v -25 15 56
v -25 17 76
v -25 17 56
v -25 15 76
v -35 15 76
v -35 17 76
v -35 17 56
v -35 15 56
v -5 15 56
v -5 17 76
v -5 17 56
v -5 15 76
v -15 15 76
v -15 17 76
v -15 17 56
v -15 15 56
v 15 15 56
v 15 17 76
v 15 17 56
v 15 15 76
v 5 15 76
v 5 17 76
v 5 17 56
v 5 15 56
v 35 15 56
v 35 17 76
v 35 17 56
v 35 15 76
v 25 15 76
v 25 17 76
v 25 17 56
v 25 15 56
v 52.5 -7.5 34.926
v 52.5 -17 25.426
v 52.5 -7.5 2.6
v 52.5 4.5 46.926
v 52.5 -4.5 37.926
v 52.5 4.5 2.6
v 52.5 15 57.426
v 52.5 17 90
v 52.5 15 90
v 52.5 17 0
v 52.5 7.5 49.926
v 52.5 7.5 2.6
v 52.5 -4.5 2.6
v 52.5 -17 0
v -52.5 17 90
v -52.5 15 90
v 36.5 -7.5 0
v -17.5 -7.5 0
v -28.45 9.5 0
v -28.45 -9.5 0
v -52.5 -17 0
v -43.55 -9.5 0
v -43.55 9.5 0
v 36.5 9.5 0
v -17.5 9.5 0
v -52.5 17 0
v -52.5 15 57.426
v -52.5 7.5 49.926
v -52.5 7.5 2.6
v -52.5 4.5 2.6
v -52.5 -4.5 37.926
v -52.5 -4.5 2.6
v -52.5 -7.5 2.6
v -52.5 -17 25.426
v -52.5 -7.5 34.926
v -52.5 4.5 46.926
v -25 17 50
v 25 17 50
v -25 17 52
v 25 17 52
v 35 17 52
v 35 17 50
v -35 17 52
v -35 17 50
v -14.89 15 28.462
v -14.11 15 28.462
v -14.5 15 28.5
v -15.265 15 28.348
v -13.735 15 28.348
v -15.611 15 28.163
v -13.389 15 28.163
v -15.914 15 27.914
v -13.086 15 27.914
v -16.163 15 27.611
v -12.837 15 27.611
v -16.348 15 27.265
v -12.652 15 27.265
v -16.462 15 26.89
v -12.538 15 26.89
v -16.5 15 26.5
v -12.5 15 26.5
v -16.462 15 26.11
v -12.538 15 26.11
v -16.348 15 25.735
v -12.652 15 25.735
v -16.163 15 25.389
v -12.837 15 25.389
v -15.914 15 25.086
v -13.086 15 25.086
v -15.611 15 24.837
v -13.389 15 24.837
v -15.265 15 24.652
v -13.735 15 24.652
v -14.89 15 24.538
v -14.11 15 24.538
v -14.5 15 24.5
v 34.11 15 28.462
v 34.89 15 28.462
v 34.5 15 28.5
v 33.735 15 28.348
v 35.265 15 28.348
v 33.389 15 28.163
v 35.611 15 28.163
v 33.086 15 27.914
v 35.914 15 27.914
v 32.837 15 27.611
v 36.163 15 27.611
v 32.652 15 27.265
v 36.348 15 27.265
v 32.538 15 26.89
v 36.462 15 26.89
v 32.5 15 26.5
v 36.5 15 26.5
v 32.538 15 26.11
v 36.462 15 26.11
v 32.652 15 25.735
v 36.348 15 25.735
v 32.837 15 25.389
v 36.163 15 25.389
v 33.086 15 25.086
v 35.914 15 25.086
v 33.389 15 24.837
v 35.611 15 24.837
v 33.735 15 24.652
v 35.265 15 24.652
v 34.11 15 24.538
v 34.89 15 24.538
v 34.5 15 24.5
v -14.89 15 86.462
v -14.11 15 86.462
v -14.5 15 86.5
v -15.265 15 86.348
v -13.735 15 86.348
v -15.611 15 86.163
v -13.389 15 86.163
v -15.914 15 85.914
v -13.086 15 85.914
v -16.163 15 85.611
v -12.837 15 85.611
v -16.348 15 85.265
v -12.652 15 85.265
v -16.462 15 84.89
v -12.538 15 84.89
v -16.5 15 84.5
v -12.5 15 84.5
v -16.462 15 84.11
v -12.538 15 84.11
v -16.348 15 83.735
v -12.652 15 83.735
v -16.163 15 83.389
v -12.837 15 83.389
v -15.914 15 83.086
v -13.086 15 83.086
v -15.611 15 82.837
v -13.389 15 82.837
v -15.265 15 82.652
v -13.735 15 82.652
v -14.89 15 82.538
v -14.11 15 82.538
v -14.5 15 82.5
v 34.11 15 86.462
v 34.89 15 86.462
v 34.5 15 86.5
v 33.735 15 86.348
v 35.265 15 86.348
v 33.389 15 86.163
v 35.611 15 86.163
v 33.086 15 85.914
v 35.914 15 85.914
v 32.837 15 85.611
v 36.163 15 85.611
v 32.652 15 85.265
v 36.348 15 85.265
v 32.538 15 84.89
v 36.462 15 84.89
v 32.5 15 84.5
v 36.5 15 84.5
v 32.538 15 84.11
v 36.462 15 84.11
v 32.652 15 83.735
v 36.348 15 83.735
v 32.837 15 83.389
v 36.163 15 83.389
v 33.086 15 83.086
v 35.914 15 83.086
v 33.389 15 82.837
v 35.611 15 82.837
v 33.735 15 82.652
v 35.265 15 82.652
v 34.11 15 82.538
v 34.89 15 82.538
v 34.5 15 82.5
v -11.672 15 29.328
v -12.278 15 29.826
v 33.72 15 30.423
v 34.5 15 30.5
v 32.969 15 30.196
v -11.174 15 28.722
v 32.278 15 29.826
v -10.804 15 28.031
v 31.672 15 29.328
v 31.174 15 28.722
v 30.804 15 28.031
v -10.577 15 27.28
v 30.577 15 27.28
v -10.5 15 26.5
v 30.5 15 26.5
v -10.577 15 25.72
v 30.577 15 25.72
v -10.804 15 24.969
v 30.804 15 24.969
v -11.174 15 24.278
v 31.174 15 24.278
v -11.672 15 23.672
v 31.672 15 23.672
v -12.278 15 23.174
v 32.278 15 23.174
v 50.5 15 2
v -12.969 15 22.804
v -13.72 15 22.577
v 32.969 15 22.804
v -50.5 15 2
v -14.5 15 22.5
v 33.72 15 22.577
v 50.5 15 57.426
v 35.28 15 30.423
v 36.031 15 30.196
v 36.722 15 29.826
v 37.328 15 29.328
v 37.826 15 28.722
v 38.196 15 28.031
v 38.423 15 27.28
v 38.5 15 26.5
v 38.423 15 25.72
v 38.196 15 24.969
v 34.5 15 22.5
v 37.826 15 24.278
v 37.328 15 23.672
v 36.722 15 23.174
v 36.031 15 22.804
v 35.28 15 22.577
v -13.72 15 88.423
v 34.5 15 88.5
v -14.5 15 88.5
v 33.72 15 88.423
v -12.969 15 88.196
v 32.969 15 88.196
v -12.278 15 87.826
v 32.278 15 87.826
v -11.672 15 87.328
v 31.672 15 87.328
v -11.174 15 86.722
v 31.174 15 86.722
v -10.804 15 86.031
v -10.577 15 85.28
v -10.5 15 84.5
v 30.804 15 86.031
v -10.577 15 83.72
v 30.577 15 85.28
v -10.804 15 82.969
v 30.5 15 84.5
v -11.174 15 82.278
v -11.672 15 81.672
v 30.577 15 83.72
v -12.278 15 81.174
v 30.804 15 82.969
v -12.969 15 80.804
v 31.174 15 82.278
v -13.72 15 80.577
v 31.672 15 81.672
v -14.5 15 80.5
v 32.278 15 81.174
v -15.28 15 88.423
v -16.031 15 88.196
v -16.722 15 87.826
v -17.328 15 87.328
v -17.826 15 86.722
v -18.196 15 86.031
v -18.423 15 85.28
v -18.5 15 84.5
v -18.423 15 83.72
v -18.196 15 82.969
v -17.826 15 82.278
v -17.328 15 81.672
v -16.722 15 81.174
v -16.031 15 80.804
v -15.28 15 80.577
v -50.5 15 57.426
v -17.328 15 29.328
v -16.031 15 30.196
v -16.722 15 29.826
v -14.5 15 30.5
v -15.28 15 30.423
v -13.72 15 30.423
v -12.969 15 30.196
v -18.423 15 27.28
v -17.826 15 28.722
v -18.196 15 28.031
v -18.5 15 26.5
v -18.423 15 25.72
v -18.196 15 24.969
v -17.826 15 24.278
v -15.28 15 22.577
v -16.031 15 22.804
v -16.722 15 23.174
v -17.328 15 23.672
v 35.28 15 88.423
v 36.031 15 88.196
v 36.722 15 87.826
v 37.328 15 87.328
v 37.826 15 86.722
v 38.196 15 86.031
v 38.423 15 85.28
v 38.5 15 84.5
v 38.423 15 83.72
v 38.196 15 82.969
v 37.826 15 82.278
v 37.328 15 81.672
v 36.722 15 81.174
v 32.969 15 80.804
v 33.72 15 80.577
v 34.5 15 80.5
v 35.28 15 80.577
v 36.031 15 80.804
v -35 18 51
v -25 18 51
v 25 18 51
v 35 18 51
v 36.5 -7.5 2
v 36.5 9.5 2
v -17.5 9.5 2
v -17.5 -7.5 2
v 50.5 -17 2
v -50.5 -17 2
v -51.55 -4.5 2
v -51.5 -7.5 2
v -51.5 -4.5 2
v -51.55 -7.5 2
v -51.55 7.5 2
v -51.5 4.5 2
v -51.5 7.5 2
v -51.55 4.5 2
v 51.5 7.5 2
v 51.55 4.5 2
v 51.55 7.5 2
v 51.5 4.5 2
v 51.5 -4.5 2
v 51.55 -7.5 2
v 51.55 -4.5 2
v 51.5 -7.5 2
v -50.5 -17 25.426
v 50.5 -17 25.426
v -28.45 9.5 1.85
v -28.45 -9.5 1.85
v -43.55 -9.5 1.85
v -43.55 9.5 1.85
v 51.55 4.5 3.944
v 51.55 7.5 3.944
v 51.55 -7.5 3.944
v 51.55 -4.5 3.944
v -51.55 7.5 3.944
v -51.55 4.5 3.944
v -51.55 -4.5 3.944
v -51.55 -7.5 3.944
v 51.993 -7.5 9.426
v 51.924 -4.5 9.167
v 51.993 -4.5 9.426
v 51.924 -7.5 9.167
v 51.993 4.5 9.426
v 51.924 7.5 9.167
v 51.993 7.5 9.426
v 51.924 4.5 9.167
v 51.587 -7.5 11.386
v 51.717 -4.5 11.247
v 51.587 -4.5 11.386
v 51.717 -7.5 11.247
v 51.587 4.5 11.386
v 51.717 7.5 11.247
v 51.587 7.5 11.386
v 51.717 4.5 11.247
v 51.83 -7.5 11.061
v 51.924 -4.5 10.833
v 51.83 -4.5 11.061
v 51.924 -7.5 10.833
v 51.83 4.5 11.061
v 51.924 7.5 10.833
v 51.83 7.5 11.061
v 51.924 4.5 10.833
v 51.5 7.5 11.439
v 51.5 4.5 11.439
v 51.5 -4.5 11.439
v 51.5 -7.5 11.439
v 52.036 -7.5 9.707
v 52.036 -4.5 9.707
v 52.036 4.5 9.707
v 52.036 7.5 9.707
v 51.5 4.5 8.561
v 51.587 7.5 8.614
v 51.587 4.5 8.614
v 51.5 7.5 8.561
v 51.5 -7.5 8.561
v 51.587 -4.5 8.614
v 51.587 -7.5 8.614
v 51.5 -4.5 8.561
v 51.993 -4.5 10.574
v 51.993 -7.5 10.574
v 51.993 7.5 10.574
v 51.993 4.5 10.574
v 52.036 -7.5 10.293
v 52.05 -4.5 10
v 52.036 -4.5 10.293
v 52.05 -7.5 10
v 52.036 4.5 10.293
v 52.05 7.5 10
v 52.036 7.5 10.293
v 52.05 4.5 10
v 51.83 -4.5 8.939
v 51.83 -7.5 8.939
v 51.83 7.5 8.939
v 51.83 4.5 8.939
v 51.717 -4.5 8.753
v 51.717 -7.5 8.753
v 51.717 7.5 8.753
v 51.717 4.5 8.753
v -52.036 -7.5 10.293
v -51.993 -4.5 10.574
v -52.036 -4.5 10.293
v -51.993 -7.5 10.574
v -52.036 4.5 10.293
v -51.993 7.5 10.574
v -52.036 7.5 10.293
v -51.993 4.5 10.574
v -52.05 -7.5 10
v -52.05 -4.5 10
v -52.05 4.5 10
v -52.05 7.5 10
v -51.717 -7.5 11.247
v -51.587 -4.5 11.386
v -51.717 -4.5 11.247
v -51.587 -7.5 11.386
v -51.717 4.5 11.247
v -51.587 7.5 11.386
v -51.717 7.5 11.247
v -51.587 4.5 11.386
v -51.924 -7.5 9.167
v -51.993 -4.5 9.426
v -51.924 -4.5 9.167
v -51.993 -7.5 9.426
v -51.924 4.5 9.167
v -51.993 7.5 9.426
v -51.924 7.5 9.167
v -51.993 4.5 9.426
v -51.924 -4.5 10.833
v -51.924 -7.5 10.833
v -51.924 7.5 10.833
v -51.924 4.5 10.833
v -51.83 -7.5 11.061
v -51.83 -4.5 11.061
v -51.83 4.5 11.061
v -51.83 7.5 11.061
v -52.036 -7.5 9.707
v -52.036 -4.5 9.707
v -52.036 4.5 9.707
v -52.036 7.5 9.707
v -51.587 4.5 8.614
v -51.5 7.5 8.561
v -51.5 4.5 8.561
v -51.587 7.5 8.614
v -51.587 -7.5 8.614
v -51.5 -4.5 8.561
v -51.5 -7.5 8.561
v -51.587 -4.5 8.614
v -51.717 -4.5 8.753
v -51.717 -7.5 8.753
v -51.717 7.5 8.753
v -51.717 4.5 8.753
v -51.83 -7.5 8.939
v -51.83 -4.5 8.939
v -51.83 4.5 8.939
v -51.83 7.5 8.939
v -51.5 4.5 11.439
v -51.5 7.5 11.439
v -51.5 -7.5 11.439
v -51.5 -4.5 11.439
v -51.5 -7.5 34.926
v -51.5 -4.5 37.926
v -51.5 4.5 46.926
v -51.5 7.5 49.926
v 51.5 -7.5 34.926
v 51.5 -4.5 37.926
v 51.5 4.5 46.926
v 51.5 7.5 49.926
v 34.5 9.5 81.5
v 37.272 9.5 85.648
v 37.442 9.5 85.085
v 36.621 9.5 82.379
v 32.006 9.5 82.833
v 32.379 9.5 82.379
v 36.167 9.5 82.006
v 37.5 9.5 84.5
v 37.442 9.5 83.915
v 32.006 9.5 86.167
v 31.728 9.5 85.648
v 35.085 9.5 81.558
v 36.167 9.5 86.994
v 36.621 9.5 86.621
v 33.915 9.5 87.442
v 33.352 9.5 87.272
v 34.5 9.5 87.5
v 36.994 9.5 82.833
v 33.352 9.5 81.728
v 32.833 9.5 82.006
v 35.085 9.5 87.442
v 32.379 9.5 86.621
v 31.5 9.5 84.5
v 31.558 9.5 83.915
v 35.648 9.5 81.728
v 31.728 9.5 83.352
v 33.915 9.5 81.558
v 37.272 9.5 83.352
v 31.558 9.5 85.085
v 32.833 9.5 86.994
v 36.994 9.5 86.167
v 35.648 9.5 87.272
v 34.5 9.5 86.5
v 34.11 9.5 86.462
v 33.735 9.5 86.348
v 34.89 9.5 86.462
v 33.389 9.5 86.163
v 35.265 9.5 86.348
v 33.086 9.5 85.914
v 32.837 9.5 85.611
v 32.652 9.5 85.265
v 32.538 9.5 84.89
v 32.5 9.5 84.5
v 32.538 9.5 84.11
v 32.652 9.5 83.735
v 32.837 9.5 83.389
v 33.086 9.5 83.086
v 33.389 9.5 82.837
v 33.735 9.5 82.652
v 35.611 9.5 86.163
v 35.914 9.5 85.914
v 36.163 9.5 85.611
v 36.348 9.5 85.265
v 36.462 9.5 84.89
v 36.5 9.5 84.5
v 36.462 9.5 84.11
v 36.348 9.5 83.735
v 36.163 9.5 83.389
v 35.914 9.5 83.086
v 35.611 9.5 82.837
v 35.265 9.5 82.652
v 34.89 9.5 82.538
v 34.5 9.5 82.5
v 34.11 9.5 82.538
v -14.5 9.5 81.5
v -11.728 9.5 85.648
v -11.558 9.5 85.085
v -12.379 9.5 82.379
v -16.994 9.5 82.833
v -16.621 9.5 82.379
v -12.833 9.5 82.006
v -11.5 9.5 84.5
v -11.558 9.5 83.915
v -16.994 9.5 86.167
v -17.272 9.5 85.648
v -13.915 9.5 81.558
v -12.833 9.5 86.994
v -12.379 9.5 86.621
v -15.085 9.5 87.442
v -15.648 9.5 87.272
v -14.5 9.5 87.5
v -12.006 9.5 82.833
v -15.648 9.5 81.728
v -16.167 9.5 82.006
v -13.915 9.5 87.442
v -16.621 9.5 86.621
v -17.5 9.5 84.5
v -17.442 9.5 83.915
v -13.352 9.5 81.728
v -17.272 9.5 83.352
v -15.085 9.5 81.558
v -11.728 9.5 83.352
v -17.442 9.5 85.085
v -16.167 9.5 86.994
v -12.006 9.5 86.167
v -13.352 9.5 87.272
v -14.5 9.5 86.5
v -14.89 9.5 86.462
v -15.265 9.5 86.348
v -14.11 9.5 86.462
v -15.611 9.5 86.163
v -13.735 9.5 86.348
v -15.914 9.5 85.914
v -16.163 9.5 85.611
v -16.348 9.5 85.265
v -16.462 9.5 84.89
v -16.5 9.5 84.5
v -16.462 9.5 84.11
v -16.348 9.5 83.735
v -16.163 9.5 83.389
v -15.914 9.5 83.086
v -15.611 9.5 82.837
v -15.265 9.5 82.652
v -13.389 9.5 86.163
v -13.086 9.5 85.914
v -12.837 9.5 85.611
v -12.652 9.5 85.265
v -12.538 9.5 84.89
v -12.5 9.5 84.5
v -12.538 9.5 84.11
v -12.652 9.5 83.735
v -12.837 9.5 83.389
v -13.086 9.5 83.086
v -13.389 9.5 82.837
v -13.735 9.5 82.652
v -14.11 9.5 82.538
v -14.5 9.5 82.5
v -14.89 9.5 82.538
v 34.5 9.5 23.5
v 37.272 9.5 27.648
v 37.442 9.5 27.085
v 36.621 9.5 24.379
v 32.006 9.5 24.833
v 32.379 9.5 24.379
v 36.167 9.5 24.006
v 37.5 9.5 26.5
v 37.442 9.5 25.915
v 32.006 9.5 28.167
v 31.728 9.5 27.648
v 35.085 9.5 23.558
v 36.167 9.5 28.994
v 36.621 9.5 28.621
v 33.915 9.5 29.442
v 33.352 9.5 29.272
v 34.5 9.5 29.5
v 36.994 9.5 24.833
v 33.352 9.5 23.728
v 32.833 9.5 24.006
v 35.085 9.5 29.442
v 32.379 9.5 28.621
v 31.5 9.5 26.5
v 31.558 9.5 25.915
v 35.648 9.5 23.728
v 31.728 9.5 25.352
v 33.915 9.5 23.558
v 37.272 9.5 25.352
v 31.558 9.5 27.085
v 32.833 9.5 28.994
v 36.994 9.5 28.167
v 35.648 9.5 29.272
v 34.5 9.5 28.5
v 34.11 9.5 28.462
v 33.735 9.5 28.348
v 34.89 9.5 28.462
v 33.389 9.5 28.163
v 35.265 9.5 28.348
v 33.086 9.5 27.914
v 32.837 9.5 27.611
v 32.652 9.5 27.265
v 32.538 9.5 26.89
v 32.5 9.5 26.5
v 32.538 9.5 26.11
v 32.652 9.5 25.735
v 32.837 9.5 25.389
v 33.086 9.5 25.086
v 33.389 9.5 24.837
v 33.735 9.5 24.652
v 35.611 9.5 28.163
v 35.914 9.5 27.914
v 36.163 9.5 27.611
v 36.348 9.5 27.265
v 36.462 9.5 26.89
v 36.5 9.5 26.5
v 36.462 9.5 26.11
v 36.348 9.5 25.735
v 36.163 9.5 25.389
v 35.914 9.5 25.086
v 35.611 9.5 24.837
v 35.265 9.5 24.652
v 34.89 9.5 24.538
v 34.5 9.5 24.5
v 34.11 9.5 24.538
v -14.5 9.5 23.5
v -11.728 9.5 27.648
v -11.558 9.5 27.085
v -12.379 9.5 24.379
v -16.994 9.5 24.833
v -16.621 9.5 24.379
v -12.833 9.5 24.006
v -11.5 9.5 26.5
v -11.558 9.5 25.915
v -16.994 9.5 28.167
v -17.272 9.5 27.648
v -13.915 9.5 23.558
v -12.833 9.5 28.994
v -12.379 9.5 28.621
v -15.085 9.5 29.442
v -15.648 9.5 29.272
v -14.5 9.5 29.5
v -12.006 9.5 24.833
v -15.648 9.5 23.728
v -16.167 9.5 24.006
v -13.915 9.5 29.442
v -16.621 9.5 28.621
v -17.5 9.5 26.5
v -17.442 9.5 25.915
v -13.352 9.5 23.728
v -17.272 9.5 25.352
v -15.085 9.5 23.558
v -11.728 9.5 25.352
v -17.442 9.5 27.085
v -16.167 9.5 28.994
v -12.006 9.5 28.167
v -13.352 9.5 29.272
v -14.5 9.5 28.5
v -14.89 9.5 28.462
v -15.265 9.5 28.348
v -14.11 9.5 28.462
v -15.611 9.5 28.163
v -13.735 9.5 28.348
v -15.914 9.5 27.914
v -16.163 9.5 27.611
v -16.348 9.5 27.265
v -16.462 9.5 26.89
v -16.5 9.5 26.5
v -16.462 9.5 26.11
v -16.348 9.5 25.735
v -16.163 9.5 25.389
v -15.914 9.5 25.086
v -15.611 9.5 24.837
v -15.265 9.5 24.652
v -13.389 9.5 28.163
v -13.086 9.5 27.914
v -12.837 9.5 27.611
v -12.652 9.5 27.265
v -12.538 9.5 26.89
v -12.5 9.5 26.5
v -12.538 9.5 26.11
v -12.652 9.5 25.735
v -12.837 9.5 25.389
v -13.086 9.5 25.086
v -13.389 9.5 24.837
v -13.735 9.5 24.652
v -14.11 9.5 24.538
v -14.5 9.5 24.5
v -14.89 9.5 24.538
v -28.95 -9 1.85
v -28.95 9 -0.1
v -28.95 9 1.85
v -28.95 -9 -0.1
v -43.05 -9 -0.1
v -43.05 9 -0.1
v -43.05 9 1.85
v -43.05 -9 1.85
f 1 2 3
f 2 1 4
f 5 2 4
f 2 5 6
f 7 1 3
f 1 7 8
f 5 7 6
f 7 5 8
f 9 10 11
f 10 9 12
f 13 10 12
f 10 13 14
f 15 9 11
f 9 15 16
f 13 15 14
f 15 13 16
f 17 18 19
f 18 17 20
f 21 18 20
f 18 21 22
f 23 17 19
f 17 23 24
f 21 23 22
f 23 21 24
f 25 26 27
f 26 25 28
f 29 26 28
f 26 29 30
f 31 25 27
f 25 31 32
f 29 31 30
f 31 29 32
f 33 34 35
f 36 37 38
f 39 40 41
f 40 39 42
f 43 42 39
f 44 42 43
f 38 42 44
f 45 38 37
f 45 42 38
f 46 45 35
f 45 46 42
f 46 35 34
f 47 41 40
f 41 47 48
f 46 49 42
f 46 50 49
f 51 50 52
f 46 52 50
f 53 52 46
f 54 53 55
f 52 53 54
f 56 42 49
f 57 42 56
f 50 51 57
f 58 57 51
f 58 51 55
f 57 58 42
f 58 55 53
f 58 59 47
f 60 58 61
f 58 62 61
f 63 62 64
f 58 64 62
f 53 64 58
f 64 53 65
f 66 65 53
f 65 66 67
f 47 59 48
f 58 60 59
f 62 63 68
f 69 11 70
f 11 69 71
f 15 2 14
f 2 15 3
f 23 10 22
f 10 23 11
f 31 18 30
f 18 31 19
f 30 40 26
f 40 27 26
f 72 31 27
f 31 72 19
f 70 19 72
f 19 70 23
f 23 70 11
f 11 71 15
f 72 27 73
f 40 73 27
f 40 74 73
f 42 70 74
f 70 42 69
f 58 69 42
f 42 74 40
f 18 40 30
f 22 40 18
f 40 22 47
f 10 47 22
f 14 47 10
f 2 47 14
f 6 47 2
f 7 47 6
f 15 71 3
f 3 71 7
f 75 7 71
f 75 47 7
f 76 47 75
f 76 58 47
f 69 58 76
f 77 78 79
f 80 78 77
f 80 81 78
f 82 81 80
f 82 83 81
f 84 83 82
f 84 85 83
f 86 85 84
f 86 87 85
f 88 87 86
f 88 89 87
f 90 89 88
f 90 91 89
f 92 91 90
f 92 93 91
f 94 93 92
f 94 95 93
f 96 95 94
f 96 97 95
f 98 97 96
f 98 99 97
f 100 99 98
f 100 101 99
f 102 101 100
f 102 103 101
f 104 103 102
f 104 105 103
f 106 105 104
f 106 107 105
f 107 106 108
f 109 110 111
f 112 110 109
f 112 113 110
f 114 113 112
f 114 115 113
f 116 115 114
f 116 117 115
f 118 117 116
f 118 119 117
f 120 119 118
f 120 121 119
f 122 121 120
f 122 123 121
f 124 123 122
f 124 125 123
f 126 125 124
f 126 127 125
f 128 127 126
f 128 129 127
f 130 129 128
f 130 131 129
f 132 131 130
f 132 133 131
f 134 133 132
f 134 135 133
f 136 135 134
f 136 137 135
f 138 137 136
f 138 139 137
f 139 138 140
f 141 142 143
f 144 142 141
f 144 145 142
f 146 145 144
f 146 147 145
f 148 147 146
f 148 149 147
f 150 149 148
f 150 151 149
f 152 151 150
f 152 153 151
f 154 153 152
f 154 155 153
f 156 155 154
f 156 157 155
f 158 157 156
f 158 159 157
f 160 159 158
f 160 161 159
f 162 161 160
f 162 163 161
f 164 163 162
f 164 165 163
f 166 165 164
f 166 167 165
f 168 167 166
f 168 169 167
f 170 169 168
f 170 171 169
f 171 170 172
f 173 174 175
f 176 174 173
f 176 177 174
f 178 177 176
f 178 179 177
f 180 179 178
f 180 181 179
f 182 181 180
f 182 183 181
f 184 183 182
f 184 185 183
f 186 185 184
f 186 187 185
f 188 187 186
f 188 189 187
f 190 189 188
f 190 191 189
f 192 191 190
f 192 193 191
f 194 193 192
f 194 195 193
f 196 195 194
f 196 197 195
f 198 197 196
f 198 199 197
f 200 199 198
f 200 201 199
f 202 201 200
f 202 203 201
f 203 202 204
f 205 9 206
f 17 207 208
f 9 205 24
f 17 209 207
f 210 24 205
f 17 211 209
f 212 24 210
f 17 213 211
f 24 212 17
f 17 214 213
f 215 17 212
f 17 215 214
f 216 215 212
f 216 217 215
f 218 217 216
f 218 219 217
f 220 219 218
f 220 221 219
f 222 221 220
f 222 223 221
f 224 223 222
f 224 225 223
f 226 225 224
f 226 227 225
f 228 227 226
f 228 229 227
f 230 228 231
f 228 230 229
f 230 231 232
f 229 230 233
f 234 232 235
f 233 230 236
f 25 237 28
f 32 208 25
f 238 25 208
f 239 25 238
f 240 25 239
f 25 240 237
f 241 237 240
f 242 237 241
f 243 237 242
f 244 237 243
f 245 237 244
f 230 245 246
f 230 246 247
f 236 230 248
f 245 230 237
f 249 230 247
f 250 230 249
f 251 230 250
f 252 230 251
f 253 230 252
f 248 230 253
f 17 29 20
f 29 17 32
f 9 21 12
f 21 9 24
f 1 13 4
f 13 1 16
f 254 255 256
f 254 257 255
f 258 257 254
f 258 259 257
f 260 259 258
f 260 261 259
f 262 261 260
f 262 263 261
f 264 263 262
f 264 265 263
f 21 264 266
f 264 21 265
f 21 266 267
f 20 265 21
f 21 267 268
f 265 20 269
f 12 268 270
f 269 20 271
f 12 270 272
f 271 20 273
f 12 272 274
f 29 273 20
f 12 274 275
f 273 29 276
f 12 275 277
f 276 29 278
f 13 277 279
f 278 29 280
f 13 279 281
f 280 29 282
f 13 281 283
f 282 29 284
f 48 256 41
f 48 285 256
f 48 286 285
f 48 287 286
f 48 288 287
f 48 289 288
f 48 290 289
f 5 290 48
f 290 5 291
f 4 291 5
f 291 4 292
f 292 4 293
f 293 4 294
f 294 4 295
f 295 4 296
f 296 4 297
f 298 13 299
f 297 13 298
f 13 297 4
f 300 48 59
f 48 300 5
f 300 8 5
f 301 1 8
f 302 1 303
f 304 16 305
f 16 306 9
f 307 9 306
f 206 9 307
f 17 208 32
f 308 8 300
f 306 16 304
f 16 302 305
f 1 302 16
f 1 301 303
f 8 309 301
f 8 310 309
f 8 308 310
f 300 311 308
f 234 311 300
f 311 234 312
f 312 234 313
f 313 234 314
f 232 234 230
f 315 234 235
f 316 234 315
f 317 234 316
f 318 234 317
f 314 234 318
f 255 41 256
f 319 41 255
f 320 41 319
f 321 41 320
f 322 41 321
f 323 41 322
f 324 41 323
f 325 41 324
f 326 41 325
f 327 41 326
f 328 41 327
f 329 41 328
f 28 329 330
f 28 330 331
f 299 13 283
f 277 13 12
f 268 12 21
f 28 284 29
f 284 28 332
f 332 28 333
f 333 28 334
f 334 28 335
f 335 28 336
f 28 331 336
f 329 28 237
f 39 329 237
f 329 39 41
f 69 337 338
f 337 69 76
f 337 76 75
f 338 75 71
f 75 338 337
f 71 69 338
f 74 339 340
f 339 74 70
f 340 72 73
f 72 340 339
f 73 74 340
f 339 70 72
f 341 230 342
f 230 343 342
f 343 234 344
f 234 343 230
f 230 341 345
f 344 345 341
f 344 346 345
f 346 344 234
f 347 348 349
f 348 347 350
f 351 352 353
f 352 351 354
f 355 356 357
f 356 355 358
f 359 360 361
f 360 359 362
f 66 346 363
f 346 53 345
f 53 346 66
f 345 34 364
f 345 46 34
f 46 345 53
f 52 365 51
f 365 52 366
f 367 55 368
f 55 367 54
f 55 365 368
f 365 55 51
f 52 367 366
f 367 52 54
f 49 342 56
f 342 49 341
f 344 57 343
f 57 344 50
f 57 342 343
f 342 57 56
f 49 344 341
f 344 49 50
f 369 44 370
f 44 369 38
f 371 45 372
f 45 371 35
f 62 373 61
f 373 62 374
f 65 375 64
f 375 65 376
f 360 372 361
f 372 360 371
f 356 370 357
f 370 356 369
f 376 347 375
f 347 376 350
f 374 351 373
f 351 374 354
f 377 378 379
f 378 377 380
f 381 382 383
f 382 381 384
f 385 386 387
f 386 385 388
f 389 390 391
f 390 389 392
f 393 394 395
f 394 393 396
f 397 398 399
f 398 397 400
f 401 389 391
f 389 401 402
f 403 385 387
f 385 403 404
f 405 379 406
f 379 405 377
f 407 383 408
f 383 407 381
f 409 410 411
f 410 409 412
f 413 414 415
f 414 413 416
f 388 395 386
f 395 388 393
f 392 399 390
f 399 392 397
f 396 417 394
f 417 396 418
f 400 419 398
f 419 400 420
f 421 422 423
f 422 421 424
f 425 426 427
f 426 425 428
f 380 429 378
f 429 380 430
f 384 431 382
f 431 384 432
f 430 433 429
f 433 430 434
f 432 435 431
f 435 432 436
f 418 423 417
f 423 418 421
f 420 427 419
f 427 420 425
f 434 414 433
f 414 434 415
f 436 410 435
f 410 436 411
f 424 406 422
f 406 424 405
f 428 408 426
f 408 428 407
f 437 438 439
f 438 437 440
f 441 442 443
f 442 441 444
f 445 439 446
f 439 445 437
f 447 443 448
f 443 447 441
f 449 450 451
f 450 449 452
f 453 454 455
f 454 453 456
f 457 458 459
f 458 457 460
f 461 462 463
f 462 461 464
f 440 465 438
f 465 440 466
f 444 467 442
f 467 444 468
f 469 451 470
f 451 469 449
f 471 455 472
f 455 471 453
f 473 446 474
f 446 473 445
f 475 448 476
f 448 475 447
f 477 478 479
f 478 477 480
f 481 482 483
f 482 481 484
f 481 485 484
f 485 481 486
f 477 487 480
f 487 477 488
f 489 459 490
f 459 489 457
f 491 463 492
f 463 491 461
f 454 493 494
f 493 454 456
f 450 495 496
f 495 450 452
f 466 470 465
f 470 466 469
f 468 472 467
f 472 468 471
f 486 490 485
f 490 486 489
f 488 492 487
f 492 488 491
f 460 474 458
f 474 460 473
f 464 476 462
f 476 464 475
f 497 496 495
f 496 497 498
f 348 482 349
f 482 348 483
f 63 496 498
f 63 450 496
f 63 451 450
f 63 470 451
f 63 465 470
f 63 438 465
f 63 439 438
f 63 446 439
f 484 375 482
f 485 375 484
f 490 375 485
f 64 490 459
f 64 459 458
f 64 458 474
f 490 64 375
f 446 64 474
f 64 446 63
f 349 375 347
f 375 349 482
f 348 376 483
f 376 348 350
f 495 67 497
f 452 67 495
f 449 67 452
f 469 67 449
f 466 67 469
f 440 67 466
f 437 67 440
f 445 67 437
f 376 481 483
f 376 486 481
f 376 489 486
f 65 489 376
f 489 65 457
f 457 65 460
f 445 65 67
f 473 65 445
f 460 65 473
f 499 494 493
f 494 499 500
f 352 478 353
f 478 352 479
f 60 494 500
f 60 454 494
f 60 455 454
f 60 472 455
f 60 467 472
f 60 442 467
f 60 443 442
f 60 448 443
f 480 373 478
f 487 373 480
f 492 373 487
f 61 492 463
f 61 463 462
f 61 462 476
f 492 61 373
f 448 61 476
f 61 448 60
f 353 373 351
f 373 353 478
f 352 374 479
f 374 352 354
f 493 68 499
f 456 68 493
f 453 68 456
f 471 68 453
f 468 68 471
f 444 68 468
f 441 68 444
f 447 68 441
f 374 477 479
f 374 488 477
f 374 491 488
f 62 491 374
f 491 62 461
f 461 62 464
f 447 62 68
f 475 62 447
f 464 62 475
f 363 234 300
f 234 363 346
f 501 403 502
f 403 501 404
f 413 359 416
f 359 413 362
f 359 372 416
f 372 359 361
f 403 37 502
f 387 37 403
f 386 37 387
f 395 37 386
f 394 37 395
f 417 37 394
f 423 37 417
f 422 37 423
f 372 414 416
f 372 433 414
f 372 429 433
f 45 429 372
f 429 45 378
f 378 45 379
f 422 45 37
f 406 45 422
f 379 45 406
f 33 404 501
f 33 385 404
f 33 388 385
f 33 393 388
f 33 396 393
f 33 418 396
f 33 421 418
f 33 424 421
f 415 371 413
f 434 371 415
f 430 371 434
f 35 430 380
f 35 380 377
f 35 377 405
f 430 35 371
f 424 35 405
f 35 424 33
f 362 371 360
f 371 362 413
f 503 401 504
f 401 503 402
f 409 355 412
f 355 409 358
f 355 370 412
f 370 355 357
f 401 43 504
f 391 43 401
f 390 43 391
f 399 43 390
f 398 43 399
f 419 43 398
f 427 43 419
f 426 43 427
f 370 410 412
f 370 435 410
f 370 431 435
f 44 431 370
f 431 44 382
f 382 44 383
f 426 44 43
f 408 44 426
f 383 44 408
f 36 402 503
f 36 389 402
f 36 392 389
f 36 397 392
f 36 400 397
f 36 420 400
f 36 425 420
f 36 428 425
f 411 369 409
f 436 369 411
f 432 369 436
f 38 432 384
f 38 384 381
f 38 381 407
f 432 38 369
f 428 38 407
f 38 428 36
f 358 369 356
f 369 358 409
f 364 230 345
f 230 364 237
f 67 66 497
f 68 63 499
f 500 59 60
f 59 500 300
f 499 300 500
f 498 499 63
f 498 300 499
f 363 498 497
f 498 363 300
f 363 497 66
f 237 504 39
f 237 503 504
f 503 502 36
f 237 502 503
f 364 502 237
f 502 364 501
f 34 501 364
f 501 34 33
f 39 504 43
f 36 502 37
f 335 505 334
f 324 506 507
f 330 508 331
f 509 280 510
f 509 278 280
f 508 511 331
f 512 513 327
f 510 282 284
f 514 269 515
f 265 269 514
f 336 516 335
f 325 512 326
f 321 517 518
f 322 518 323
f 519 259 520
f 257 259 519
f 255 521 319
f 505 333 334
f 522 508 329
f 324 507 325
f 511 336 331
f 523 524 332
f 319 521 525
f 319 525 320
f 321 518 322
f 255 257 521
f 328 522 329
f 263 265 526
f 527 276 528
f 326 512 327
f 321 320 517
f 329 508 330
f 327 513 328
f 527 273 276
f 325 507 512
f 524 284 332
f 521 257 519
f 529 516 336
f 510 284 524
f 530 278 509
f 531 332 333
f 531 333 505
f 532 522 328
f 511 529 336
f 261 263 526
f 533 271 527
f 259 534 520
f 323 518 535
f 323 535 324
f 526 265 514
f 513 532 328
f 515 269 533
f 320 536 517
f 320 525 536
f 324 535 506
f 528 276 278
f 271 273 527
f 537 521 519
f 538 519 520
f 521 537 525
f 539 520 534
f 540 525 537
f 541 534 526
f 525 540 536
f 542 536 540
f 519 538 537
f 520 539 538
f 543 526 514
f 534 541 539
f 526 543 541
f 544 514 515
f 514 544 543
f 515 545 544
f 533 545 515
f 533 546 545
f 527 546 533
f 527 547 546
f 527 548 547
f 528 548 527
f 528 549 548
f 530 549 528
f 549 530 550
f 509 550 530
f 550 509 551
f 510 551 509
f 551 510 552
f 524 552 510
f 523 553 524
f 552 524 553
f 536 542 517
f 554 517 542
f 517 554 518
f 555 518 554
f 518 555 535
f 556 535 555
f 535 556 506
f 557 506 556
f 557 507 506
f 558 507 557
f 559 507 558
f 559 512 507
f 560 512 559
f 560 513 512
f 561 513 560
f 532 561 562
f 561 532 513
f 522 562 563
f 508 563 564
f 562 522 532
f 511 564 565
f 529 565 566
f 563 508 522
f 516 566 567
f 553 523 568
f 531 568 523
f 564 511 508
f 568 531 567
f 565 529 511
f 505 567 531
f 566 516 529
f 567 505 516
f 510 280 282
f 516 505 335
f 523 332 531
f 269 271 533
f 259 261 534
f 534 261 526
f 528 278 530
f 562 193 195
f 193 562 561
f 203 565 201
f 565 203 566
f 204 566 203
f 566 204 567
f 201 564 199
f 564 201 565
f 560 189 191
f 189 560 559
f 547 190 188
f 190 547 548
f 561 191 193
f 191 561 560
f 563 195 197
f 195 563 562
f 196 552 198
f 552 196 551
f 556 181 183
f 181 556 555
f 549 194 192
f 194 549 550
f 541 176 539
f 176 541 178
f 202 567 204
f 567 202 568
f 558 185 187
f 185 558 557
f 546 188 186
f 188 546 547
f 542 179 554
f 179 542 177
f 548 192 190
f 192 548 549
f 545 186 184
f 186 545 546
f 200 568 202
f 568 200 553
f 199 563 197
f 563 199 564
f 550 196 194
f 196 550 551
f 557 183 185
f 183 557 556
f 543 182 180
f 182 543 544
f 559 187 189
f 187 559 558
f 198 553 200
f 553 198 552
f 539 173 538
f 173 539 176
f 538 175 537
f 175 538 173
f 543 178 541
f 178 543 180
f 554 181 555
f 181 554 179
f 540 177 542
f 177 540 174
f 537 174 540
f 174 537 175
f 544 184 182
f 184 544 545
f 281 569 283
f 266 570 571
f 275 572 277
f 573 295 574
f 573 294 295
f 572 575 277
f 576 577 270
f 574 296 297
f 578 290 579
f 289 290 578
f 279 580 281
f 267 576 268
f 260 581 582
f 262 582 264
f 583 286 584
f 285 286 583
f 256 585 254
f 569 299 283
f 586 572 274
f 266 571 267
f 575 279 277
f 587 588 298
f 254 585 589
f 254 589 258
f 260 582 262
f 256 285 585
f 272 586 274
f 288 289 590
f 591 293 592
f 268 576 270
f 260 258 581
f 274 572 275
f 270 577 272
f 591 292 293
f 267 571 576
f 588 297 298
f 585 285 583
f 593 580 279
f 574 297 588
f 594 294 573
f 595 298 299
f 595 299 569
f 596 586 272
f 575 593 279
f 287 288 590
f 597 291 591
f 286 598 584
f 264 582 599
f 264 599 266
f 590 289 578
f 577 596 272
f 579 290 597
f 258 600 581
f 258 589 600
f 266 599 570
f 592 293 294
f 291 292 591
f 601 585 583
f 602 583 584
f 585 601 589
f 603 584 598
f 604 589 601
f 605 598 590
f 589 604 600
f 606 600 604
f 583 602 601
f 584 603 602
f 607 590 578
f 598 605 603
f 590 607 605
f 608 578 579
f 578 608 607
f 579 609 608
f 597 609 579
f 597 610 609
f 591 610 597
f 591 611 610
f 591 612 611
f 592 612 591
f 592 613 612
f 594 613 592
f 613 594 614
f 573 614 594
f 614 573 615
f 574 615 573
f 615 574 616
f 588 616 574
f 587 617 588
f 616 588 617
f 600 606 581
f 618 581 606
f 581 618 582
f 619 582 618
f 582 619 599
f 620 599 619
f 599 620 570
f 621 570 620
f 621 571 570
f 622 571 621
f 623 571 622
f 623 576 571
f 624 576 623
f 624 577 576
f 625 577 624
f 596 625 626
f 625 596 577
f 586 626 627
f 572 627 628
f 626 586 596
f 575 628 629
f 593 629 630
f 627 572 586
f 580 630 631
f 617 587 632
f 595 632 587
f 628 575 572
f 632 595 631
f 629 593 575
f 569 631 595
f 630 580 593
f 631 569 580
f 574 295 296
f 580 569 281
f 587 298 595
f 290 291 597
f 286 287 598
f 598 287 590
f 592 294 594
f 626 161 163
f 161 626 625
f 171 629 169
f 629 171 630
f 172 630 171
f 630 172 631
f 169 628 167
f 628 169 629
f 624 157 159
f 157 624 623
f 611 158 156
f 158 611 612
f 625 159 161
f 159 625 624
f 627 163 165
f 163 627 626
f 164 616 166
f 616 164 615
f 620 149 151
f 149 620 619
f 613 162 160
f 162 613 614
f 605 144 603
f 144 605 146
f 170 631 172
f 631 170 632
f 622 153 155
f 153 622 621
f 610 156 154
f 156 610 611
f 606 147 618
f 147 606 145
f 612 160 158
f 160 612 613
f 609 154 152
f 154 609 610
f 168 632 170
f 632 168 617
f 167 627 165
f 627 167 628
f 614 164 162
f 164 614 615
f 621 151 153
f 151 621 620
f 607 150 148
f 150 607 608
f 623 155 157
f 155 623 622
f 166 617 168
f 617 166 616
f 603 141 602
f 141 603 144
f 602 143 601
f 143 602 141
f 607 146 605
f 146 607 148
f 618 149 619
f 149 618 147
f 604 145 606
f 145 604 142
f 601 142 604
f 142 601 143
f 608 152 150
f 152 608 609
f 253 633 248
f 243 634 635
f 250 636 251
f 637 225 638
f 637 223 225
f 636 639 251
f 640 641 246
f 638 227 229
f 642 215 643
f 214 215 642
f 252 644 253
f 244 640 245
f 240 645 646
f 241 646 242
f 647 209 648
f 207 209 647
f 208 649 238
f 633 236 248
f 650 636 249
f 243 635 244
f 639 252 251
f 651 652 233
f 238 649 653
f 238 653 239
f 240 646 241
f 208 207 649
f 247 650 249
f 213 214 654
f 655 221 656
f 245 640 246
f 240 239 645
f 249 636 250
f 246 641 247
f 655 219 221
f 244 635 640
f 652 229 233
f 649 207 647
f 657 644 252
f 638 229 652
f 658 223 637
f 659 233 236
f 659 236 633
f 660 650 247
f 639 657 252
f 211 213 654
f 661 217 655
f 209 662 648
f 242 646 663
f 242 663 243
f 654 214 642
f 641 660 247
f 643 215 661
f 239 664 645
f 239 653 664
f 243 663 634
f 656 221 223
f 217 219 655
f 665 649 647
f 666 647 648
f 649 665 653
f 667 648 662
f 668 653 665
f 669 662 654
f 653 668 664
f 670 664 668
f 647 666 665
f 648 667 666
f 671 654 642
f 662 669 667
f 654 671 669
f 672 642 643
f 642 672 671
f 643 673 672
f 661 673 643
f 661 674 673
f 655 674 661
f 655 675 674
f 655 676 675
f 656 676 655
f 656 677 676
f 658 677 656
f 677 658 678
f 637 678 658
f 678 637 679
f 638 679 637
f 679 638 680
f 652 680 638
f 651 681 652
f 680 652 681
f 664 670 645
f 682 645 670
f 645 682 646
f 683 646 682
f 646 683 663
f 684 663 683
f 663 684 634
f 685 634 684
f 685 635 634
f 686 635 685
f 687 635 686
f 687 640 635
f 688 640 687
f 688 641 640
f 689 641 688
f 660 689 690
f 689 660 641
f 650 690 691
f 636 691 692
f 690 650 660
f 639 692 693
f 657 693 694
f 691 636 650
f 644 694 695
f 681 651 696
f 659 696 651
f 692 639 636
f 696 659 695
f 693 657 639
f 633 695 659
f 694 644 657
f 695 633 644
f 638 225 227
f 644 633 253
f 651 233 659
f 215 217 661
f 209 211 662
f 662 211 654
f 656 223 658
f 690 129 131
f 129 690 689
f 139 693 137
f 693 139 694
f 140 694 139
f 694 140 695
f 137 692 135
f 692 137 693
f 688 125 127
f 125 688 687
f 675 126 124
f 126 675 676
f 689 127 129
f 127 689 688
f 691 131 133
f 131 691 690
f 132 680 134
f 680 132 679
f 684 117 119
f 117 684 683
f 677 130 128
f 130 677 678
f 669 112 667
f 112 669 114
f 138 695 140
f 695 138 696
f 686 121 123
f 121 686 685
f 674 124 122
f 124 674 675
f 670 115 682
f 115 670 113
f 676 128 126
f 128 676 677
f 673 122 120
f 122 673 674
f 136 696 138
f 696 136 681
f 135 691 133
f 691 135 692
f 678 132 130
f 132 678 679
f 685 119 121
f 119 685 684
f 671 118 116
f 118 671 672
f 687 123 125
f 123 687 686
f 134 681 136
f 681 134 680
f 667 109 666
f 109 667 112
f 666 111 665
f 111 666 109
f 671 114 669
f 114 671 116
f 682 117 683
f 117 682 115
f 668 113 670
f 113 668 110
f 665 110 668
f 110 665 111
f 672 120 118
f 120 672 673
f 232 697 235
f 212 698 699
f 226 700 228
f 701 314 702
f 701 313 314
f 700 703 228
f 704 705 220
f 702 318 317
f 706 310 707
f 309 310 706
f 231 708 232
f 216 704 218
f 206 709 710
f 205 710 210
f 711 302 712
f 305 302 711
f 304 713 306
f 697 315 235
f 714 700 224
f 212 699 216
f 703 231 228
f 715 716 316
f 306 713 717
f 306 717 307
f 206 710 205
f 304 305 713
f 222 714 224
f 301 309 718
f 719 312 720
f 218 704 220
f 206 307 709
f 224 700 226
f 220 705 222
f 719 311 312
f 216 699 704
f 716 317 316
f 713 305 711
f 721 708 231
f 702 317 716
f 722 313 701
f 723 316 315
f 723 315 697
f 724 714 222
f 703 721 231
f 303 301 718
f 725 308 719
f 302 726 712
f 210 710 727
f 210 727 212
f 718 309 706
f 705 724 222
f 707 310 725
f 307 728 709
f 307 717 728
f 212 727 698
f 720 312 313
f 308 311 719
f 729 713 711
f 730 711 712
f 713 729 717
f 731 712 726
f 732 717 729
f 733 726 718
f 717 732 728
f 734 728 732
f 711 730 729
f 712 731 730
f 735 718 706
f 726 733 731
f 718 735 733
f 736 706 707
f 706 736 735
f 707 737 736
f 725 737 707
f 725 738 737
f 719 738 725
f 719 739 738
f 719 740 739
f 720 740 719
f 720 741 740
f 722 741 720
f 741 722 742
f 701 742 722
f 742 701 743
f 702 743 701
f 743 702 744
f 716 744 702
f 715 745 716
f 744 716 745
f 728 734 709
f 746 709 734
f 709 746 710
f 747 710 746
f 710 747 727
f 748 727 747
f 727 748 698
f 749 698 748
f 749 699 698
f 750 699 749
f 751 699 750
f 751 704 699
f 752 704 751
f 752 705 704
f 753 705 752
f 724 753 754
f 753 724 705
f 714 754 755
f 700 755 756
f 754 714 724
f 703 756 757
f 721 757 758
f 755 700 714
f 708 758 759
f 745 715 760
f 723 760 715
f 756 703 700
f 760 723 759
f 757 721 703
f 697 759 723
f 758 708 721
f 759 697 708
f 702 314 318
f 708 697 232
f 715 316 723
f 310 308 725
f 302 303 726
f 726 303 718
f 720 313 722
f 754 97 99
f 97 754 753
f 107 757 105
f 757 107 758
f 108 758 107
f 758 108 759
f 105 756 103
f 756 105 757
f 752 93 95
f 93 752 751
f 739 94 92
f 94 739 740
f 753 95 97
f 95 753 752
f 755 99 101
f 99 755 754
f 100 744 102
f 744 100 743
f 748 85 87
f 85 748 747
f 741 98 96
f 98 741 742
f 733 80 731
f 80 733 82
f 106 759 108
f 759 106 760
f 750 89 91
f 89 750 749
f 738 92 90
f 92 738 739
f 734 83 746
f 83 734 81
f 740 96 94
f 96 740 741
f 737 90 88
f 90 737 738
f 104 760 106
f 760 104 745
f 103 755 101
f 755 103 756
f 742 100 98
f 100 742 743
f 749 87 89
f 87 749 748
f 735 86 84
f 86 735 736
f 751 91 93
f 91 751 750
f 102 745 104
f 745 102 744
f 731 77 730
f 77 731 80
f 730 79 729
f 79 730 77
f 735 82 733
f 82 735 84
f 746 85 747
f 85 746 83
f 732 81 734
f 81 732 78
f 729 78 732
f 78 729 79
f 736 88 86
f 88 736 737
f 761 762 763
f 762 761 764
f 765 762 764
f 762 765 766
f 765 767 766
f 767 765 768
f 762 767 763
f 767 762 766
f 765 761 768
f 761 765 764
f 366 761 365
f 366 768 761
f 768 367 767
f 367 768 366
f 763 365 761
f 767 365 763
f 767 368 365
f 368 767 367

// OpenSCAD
W=106-1;
H=35-1;
difference() {

  cube_center([W, H, 2]);
    translate([-36,0,-.1])
    cube_center([15.1, 19.0, 5]);
    
    translate([9.5,1,-.1])
    cube_center([54, 17, 5]);
}

translate([-36,0,-.1])
cube_center([15.1-1, 19.0-1, 2]);

translate([-36,0,1.85])
cube_center([15.1, 19.0, .15]);

difference() {
translate([0,H/2-1,0])
cube_center([W, 2, 90]);

for(i=[-30,-10,10,30])
translate([i,H/2-1,56])    
cube_center([10, 3, 20]);
    
}

difference() {
    union() {
        cube_center([W,H,0]);
    translate([0,0,1])
    minkowski() {
        cube_center([W-2,H-2,1.6]);
        rotate([0,0,45])
        cylinder(d1=2*sqrt(2),d2=0,h=2/sqrt(2),$fn=4);
    }
}
    
    cube_center([W-2+.1,H+5+.1,50]);
}

for(s=[-1,1])
translate([s*30,H/2,50+1])
rotate([0,90,0])
cylinder(d=2,h=10,$fn=4,center=true);


difference() {
    // side panels
for(s=[-1,1])
    scale([s,1,1]) {
        
            for(t=[-1,1])
    translate([t*(106/2-1.7),0,10 ])
    scale([.5,1,1])
    rotate([90,0,0])
    cylinder(d=3,h=20, center=true,$fn=32);
            
        
        difference() {
    translate([W/2-1,0,0])
    cube_center([2,H,90]);
            // rails
            for(t=[-1,1])
    translate([W/2-1+2-1,t*6,0])
    cube_center([2,3,90]);
            
            
            
        }
    }
    
    rotate([45,0,0])
    translate([0,0,30])
    cube_center([200,200,200]);
    
}


translate([10,H/2-2,45.5])
rotate([90,90,0])
raspberrypi();

module raspberrypi() {
    translate([-85/2 + 3.5,49/2,0])
    standoff();
    
    translate([-85/2 + 3.5,-49/2,0])
    standoff();
    
    translate([-85/2 + 3.5 + 58,49/2,0])
    standoff();
    
    translate([-85/2 + 3.5 + 58,-49/2,0])
    standoff();
}


module standoff() {
    difference() {
        cylinder(d1=8,d2=6,h=5.5,$fn=32);
        cylinder(d=4.0,h=10, $fn=32);
    }
}

/*difference() {
    cube_center([W, H, 2]);
    for(i=[-10:5:10]) for(j=[-47.5:5:47.5])
    translate([j,i,-.1])
    cube_center([3,3,5]);
}*/

/*
translate([-28+10,10,88])
rotate([90,90,0])
import("/home/dheera/code/3d/rack/Raspberry_pi_4_v0.6.stl");
*/

module cube_center(dims,r=0,$fn=64) {
    if(r==0) {
        translate([-dims[0]/2, -dims[1]/2, 0])
        cube(dims);
    } else {
        minkowski() {
            translate([-(dims[0]-2*r)/2, -(dims[1]-2*r)/2, 0])
            cube([dims[0]-2*r,dims[1]-2*r,dims[2]]);
            cylinder(r=r,$fn=$fn,h=0.0001);
        }
    }
}
